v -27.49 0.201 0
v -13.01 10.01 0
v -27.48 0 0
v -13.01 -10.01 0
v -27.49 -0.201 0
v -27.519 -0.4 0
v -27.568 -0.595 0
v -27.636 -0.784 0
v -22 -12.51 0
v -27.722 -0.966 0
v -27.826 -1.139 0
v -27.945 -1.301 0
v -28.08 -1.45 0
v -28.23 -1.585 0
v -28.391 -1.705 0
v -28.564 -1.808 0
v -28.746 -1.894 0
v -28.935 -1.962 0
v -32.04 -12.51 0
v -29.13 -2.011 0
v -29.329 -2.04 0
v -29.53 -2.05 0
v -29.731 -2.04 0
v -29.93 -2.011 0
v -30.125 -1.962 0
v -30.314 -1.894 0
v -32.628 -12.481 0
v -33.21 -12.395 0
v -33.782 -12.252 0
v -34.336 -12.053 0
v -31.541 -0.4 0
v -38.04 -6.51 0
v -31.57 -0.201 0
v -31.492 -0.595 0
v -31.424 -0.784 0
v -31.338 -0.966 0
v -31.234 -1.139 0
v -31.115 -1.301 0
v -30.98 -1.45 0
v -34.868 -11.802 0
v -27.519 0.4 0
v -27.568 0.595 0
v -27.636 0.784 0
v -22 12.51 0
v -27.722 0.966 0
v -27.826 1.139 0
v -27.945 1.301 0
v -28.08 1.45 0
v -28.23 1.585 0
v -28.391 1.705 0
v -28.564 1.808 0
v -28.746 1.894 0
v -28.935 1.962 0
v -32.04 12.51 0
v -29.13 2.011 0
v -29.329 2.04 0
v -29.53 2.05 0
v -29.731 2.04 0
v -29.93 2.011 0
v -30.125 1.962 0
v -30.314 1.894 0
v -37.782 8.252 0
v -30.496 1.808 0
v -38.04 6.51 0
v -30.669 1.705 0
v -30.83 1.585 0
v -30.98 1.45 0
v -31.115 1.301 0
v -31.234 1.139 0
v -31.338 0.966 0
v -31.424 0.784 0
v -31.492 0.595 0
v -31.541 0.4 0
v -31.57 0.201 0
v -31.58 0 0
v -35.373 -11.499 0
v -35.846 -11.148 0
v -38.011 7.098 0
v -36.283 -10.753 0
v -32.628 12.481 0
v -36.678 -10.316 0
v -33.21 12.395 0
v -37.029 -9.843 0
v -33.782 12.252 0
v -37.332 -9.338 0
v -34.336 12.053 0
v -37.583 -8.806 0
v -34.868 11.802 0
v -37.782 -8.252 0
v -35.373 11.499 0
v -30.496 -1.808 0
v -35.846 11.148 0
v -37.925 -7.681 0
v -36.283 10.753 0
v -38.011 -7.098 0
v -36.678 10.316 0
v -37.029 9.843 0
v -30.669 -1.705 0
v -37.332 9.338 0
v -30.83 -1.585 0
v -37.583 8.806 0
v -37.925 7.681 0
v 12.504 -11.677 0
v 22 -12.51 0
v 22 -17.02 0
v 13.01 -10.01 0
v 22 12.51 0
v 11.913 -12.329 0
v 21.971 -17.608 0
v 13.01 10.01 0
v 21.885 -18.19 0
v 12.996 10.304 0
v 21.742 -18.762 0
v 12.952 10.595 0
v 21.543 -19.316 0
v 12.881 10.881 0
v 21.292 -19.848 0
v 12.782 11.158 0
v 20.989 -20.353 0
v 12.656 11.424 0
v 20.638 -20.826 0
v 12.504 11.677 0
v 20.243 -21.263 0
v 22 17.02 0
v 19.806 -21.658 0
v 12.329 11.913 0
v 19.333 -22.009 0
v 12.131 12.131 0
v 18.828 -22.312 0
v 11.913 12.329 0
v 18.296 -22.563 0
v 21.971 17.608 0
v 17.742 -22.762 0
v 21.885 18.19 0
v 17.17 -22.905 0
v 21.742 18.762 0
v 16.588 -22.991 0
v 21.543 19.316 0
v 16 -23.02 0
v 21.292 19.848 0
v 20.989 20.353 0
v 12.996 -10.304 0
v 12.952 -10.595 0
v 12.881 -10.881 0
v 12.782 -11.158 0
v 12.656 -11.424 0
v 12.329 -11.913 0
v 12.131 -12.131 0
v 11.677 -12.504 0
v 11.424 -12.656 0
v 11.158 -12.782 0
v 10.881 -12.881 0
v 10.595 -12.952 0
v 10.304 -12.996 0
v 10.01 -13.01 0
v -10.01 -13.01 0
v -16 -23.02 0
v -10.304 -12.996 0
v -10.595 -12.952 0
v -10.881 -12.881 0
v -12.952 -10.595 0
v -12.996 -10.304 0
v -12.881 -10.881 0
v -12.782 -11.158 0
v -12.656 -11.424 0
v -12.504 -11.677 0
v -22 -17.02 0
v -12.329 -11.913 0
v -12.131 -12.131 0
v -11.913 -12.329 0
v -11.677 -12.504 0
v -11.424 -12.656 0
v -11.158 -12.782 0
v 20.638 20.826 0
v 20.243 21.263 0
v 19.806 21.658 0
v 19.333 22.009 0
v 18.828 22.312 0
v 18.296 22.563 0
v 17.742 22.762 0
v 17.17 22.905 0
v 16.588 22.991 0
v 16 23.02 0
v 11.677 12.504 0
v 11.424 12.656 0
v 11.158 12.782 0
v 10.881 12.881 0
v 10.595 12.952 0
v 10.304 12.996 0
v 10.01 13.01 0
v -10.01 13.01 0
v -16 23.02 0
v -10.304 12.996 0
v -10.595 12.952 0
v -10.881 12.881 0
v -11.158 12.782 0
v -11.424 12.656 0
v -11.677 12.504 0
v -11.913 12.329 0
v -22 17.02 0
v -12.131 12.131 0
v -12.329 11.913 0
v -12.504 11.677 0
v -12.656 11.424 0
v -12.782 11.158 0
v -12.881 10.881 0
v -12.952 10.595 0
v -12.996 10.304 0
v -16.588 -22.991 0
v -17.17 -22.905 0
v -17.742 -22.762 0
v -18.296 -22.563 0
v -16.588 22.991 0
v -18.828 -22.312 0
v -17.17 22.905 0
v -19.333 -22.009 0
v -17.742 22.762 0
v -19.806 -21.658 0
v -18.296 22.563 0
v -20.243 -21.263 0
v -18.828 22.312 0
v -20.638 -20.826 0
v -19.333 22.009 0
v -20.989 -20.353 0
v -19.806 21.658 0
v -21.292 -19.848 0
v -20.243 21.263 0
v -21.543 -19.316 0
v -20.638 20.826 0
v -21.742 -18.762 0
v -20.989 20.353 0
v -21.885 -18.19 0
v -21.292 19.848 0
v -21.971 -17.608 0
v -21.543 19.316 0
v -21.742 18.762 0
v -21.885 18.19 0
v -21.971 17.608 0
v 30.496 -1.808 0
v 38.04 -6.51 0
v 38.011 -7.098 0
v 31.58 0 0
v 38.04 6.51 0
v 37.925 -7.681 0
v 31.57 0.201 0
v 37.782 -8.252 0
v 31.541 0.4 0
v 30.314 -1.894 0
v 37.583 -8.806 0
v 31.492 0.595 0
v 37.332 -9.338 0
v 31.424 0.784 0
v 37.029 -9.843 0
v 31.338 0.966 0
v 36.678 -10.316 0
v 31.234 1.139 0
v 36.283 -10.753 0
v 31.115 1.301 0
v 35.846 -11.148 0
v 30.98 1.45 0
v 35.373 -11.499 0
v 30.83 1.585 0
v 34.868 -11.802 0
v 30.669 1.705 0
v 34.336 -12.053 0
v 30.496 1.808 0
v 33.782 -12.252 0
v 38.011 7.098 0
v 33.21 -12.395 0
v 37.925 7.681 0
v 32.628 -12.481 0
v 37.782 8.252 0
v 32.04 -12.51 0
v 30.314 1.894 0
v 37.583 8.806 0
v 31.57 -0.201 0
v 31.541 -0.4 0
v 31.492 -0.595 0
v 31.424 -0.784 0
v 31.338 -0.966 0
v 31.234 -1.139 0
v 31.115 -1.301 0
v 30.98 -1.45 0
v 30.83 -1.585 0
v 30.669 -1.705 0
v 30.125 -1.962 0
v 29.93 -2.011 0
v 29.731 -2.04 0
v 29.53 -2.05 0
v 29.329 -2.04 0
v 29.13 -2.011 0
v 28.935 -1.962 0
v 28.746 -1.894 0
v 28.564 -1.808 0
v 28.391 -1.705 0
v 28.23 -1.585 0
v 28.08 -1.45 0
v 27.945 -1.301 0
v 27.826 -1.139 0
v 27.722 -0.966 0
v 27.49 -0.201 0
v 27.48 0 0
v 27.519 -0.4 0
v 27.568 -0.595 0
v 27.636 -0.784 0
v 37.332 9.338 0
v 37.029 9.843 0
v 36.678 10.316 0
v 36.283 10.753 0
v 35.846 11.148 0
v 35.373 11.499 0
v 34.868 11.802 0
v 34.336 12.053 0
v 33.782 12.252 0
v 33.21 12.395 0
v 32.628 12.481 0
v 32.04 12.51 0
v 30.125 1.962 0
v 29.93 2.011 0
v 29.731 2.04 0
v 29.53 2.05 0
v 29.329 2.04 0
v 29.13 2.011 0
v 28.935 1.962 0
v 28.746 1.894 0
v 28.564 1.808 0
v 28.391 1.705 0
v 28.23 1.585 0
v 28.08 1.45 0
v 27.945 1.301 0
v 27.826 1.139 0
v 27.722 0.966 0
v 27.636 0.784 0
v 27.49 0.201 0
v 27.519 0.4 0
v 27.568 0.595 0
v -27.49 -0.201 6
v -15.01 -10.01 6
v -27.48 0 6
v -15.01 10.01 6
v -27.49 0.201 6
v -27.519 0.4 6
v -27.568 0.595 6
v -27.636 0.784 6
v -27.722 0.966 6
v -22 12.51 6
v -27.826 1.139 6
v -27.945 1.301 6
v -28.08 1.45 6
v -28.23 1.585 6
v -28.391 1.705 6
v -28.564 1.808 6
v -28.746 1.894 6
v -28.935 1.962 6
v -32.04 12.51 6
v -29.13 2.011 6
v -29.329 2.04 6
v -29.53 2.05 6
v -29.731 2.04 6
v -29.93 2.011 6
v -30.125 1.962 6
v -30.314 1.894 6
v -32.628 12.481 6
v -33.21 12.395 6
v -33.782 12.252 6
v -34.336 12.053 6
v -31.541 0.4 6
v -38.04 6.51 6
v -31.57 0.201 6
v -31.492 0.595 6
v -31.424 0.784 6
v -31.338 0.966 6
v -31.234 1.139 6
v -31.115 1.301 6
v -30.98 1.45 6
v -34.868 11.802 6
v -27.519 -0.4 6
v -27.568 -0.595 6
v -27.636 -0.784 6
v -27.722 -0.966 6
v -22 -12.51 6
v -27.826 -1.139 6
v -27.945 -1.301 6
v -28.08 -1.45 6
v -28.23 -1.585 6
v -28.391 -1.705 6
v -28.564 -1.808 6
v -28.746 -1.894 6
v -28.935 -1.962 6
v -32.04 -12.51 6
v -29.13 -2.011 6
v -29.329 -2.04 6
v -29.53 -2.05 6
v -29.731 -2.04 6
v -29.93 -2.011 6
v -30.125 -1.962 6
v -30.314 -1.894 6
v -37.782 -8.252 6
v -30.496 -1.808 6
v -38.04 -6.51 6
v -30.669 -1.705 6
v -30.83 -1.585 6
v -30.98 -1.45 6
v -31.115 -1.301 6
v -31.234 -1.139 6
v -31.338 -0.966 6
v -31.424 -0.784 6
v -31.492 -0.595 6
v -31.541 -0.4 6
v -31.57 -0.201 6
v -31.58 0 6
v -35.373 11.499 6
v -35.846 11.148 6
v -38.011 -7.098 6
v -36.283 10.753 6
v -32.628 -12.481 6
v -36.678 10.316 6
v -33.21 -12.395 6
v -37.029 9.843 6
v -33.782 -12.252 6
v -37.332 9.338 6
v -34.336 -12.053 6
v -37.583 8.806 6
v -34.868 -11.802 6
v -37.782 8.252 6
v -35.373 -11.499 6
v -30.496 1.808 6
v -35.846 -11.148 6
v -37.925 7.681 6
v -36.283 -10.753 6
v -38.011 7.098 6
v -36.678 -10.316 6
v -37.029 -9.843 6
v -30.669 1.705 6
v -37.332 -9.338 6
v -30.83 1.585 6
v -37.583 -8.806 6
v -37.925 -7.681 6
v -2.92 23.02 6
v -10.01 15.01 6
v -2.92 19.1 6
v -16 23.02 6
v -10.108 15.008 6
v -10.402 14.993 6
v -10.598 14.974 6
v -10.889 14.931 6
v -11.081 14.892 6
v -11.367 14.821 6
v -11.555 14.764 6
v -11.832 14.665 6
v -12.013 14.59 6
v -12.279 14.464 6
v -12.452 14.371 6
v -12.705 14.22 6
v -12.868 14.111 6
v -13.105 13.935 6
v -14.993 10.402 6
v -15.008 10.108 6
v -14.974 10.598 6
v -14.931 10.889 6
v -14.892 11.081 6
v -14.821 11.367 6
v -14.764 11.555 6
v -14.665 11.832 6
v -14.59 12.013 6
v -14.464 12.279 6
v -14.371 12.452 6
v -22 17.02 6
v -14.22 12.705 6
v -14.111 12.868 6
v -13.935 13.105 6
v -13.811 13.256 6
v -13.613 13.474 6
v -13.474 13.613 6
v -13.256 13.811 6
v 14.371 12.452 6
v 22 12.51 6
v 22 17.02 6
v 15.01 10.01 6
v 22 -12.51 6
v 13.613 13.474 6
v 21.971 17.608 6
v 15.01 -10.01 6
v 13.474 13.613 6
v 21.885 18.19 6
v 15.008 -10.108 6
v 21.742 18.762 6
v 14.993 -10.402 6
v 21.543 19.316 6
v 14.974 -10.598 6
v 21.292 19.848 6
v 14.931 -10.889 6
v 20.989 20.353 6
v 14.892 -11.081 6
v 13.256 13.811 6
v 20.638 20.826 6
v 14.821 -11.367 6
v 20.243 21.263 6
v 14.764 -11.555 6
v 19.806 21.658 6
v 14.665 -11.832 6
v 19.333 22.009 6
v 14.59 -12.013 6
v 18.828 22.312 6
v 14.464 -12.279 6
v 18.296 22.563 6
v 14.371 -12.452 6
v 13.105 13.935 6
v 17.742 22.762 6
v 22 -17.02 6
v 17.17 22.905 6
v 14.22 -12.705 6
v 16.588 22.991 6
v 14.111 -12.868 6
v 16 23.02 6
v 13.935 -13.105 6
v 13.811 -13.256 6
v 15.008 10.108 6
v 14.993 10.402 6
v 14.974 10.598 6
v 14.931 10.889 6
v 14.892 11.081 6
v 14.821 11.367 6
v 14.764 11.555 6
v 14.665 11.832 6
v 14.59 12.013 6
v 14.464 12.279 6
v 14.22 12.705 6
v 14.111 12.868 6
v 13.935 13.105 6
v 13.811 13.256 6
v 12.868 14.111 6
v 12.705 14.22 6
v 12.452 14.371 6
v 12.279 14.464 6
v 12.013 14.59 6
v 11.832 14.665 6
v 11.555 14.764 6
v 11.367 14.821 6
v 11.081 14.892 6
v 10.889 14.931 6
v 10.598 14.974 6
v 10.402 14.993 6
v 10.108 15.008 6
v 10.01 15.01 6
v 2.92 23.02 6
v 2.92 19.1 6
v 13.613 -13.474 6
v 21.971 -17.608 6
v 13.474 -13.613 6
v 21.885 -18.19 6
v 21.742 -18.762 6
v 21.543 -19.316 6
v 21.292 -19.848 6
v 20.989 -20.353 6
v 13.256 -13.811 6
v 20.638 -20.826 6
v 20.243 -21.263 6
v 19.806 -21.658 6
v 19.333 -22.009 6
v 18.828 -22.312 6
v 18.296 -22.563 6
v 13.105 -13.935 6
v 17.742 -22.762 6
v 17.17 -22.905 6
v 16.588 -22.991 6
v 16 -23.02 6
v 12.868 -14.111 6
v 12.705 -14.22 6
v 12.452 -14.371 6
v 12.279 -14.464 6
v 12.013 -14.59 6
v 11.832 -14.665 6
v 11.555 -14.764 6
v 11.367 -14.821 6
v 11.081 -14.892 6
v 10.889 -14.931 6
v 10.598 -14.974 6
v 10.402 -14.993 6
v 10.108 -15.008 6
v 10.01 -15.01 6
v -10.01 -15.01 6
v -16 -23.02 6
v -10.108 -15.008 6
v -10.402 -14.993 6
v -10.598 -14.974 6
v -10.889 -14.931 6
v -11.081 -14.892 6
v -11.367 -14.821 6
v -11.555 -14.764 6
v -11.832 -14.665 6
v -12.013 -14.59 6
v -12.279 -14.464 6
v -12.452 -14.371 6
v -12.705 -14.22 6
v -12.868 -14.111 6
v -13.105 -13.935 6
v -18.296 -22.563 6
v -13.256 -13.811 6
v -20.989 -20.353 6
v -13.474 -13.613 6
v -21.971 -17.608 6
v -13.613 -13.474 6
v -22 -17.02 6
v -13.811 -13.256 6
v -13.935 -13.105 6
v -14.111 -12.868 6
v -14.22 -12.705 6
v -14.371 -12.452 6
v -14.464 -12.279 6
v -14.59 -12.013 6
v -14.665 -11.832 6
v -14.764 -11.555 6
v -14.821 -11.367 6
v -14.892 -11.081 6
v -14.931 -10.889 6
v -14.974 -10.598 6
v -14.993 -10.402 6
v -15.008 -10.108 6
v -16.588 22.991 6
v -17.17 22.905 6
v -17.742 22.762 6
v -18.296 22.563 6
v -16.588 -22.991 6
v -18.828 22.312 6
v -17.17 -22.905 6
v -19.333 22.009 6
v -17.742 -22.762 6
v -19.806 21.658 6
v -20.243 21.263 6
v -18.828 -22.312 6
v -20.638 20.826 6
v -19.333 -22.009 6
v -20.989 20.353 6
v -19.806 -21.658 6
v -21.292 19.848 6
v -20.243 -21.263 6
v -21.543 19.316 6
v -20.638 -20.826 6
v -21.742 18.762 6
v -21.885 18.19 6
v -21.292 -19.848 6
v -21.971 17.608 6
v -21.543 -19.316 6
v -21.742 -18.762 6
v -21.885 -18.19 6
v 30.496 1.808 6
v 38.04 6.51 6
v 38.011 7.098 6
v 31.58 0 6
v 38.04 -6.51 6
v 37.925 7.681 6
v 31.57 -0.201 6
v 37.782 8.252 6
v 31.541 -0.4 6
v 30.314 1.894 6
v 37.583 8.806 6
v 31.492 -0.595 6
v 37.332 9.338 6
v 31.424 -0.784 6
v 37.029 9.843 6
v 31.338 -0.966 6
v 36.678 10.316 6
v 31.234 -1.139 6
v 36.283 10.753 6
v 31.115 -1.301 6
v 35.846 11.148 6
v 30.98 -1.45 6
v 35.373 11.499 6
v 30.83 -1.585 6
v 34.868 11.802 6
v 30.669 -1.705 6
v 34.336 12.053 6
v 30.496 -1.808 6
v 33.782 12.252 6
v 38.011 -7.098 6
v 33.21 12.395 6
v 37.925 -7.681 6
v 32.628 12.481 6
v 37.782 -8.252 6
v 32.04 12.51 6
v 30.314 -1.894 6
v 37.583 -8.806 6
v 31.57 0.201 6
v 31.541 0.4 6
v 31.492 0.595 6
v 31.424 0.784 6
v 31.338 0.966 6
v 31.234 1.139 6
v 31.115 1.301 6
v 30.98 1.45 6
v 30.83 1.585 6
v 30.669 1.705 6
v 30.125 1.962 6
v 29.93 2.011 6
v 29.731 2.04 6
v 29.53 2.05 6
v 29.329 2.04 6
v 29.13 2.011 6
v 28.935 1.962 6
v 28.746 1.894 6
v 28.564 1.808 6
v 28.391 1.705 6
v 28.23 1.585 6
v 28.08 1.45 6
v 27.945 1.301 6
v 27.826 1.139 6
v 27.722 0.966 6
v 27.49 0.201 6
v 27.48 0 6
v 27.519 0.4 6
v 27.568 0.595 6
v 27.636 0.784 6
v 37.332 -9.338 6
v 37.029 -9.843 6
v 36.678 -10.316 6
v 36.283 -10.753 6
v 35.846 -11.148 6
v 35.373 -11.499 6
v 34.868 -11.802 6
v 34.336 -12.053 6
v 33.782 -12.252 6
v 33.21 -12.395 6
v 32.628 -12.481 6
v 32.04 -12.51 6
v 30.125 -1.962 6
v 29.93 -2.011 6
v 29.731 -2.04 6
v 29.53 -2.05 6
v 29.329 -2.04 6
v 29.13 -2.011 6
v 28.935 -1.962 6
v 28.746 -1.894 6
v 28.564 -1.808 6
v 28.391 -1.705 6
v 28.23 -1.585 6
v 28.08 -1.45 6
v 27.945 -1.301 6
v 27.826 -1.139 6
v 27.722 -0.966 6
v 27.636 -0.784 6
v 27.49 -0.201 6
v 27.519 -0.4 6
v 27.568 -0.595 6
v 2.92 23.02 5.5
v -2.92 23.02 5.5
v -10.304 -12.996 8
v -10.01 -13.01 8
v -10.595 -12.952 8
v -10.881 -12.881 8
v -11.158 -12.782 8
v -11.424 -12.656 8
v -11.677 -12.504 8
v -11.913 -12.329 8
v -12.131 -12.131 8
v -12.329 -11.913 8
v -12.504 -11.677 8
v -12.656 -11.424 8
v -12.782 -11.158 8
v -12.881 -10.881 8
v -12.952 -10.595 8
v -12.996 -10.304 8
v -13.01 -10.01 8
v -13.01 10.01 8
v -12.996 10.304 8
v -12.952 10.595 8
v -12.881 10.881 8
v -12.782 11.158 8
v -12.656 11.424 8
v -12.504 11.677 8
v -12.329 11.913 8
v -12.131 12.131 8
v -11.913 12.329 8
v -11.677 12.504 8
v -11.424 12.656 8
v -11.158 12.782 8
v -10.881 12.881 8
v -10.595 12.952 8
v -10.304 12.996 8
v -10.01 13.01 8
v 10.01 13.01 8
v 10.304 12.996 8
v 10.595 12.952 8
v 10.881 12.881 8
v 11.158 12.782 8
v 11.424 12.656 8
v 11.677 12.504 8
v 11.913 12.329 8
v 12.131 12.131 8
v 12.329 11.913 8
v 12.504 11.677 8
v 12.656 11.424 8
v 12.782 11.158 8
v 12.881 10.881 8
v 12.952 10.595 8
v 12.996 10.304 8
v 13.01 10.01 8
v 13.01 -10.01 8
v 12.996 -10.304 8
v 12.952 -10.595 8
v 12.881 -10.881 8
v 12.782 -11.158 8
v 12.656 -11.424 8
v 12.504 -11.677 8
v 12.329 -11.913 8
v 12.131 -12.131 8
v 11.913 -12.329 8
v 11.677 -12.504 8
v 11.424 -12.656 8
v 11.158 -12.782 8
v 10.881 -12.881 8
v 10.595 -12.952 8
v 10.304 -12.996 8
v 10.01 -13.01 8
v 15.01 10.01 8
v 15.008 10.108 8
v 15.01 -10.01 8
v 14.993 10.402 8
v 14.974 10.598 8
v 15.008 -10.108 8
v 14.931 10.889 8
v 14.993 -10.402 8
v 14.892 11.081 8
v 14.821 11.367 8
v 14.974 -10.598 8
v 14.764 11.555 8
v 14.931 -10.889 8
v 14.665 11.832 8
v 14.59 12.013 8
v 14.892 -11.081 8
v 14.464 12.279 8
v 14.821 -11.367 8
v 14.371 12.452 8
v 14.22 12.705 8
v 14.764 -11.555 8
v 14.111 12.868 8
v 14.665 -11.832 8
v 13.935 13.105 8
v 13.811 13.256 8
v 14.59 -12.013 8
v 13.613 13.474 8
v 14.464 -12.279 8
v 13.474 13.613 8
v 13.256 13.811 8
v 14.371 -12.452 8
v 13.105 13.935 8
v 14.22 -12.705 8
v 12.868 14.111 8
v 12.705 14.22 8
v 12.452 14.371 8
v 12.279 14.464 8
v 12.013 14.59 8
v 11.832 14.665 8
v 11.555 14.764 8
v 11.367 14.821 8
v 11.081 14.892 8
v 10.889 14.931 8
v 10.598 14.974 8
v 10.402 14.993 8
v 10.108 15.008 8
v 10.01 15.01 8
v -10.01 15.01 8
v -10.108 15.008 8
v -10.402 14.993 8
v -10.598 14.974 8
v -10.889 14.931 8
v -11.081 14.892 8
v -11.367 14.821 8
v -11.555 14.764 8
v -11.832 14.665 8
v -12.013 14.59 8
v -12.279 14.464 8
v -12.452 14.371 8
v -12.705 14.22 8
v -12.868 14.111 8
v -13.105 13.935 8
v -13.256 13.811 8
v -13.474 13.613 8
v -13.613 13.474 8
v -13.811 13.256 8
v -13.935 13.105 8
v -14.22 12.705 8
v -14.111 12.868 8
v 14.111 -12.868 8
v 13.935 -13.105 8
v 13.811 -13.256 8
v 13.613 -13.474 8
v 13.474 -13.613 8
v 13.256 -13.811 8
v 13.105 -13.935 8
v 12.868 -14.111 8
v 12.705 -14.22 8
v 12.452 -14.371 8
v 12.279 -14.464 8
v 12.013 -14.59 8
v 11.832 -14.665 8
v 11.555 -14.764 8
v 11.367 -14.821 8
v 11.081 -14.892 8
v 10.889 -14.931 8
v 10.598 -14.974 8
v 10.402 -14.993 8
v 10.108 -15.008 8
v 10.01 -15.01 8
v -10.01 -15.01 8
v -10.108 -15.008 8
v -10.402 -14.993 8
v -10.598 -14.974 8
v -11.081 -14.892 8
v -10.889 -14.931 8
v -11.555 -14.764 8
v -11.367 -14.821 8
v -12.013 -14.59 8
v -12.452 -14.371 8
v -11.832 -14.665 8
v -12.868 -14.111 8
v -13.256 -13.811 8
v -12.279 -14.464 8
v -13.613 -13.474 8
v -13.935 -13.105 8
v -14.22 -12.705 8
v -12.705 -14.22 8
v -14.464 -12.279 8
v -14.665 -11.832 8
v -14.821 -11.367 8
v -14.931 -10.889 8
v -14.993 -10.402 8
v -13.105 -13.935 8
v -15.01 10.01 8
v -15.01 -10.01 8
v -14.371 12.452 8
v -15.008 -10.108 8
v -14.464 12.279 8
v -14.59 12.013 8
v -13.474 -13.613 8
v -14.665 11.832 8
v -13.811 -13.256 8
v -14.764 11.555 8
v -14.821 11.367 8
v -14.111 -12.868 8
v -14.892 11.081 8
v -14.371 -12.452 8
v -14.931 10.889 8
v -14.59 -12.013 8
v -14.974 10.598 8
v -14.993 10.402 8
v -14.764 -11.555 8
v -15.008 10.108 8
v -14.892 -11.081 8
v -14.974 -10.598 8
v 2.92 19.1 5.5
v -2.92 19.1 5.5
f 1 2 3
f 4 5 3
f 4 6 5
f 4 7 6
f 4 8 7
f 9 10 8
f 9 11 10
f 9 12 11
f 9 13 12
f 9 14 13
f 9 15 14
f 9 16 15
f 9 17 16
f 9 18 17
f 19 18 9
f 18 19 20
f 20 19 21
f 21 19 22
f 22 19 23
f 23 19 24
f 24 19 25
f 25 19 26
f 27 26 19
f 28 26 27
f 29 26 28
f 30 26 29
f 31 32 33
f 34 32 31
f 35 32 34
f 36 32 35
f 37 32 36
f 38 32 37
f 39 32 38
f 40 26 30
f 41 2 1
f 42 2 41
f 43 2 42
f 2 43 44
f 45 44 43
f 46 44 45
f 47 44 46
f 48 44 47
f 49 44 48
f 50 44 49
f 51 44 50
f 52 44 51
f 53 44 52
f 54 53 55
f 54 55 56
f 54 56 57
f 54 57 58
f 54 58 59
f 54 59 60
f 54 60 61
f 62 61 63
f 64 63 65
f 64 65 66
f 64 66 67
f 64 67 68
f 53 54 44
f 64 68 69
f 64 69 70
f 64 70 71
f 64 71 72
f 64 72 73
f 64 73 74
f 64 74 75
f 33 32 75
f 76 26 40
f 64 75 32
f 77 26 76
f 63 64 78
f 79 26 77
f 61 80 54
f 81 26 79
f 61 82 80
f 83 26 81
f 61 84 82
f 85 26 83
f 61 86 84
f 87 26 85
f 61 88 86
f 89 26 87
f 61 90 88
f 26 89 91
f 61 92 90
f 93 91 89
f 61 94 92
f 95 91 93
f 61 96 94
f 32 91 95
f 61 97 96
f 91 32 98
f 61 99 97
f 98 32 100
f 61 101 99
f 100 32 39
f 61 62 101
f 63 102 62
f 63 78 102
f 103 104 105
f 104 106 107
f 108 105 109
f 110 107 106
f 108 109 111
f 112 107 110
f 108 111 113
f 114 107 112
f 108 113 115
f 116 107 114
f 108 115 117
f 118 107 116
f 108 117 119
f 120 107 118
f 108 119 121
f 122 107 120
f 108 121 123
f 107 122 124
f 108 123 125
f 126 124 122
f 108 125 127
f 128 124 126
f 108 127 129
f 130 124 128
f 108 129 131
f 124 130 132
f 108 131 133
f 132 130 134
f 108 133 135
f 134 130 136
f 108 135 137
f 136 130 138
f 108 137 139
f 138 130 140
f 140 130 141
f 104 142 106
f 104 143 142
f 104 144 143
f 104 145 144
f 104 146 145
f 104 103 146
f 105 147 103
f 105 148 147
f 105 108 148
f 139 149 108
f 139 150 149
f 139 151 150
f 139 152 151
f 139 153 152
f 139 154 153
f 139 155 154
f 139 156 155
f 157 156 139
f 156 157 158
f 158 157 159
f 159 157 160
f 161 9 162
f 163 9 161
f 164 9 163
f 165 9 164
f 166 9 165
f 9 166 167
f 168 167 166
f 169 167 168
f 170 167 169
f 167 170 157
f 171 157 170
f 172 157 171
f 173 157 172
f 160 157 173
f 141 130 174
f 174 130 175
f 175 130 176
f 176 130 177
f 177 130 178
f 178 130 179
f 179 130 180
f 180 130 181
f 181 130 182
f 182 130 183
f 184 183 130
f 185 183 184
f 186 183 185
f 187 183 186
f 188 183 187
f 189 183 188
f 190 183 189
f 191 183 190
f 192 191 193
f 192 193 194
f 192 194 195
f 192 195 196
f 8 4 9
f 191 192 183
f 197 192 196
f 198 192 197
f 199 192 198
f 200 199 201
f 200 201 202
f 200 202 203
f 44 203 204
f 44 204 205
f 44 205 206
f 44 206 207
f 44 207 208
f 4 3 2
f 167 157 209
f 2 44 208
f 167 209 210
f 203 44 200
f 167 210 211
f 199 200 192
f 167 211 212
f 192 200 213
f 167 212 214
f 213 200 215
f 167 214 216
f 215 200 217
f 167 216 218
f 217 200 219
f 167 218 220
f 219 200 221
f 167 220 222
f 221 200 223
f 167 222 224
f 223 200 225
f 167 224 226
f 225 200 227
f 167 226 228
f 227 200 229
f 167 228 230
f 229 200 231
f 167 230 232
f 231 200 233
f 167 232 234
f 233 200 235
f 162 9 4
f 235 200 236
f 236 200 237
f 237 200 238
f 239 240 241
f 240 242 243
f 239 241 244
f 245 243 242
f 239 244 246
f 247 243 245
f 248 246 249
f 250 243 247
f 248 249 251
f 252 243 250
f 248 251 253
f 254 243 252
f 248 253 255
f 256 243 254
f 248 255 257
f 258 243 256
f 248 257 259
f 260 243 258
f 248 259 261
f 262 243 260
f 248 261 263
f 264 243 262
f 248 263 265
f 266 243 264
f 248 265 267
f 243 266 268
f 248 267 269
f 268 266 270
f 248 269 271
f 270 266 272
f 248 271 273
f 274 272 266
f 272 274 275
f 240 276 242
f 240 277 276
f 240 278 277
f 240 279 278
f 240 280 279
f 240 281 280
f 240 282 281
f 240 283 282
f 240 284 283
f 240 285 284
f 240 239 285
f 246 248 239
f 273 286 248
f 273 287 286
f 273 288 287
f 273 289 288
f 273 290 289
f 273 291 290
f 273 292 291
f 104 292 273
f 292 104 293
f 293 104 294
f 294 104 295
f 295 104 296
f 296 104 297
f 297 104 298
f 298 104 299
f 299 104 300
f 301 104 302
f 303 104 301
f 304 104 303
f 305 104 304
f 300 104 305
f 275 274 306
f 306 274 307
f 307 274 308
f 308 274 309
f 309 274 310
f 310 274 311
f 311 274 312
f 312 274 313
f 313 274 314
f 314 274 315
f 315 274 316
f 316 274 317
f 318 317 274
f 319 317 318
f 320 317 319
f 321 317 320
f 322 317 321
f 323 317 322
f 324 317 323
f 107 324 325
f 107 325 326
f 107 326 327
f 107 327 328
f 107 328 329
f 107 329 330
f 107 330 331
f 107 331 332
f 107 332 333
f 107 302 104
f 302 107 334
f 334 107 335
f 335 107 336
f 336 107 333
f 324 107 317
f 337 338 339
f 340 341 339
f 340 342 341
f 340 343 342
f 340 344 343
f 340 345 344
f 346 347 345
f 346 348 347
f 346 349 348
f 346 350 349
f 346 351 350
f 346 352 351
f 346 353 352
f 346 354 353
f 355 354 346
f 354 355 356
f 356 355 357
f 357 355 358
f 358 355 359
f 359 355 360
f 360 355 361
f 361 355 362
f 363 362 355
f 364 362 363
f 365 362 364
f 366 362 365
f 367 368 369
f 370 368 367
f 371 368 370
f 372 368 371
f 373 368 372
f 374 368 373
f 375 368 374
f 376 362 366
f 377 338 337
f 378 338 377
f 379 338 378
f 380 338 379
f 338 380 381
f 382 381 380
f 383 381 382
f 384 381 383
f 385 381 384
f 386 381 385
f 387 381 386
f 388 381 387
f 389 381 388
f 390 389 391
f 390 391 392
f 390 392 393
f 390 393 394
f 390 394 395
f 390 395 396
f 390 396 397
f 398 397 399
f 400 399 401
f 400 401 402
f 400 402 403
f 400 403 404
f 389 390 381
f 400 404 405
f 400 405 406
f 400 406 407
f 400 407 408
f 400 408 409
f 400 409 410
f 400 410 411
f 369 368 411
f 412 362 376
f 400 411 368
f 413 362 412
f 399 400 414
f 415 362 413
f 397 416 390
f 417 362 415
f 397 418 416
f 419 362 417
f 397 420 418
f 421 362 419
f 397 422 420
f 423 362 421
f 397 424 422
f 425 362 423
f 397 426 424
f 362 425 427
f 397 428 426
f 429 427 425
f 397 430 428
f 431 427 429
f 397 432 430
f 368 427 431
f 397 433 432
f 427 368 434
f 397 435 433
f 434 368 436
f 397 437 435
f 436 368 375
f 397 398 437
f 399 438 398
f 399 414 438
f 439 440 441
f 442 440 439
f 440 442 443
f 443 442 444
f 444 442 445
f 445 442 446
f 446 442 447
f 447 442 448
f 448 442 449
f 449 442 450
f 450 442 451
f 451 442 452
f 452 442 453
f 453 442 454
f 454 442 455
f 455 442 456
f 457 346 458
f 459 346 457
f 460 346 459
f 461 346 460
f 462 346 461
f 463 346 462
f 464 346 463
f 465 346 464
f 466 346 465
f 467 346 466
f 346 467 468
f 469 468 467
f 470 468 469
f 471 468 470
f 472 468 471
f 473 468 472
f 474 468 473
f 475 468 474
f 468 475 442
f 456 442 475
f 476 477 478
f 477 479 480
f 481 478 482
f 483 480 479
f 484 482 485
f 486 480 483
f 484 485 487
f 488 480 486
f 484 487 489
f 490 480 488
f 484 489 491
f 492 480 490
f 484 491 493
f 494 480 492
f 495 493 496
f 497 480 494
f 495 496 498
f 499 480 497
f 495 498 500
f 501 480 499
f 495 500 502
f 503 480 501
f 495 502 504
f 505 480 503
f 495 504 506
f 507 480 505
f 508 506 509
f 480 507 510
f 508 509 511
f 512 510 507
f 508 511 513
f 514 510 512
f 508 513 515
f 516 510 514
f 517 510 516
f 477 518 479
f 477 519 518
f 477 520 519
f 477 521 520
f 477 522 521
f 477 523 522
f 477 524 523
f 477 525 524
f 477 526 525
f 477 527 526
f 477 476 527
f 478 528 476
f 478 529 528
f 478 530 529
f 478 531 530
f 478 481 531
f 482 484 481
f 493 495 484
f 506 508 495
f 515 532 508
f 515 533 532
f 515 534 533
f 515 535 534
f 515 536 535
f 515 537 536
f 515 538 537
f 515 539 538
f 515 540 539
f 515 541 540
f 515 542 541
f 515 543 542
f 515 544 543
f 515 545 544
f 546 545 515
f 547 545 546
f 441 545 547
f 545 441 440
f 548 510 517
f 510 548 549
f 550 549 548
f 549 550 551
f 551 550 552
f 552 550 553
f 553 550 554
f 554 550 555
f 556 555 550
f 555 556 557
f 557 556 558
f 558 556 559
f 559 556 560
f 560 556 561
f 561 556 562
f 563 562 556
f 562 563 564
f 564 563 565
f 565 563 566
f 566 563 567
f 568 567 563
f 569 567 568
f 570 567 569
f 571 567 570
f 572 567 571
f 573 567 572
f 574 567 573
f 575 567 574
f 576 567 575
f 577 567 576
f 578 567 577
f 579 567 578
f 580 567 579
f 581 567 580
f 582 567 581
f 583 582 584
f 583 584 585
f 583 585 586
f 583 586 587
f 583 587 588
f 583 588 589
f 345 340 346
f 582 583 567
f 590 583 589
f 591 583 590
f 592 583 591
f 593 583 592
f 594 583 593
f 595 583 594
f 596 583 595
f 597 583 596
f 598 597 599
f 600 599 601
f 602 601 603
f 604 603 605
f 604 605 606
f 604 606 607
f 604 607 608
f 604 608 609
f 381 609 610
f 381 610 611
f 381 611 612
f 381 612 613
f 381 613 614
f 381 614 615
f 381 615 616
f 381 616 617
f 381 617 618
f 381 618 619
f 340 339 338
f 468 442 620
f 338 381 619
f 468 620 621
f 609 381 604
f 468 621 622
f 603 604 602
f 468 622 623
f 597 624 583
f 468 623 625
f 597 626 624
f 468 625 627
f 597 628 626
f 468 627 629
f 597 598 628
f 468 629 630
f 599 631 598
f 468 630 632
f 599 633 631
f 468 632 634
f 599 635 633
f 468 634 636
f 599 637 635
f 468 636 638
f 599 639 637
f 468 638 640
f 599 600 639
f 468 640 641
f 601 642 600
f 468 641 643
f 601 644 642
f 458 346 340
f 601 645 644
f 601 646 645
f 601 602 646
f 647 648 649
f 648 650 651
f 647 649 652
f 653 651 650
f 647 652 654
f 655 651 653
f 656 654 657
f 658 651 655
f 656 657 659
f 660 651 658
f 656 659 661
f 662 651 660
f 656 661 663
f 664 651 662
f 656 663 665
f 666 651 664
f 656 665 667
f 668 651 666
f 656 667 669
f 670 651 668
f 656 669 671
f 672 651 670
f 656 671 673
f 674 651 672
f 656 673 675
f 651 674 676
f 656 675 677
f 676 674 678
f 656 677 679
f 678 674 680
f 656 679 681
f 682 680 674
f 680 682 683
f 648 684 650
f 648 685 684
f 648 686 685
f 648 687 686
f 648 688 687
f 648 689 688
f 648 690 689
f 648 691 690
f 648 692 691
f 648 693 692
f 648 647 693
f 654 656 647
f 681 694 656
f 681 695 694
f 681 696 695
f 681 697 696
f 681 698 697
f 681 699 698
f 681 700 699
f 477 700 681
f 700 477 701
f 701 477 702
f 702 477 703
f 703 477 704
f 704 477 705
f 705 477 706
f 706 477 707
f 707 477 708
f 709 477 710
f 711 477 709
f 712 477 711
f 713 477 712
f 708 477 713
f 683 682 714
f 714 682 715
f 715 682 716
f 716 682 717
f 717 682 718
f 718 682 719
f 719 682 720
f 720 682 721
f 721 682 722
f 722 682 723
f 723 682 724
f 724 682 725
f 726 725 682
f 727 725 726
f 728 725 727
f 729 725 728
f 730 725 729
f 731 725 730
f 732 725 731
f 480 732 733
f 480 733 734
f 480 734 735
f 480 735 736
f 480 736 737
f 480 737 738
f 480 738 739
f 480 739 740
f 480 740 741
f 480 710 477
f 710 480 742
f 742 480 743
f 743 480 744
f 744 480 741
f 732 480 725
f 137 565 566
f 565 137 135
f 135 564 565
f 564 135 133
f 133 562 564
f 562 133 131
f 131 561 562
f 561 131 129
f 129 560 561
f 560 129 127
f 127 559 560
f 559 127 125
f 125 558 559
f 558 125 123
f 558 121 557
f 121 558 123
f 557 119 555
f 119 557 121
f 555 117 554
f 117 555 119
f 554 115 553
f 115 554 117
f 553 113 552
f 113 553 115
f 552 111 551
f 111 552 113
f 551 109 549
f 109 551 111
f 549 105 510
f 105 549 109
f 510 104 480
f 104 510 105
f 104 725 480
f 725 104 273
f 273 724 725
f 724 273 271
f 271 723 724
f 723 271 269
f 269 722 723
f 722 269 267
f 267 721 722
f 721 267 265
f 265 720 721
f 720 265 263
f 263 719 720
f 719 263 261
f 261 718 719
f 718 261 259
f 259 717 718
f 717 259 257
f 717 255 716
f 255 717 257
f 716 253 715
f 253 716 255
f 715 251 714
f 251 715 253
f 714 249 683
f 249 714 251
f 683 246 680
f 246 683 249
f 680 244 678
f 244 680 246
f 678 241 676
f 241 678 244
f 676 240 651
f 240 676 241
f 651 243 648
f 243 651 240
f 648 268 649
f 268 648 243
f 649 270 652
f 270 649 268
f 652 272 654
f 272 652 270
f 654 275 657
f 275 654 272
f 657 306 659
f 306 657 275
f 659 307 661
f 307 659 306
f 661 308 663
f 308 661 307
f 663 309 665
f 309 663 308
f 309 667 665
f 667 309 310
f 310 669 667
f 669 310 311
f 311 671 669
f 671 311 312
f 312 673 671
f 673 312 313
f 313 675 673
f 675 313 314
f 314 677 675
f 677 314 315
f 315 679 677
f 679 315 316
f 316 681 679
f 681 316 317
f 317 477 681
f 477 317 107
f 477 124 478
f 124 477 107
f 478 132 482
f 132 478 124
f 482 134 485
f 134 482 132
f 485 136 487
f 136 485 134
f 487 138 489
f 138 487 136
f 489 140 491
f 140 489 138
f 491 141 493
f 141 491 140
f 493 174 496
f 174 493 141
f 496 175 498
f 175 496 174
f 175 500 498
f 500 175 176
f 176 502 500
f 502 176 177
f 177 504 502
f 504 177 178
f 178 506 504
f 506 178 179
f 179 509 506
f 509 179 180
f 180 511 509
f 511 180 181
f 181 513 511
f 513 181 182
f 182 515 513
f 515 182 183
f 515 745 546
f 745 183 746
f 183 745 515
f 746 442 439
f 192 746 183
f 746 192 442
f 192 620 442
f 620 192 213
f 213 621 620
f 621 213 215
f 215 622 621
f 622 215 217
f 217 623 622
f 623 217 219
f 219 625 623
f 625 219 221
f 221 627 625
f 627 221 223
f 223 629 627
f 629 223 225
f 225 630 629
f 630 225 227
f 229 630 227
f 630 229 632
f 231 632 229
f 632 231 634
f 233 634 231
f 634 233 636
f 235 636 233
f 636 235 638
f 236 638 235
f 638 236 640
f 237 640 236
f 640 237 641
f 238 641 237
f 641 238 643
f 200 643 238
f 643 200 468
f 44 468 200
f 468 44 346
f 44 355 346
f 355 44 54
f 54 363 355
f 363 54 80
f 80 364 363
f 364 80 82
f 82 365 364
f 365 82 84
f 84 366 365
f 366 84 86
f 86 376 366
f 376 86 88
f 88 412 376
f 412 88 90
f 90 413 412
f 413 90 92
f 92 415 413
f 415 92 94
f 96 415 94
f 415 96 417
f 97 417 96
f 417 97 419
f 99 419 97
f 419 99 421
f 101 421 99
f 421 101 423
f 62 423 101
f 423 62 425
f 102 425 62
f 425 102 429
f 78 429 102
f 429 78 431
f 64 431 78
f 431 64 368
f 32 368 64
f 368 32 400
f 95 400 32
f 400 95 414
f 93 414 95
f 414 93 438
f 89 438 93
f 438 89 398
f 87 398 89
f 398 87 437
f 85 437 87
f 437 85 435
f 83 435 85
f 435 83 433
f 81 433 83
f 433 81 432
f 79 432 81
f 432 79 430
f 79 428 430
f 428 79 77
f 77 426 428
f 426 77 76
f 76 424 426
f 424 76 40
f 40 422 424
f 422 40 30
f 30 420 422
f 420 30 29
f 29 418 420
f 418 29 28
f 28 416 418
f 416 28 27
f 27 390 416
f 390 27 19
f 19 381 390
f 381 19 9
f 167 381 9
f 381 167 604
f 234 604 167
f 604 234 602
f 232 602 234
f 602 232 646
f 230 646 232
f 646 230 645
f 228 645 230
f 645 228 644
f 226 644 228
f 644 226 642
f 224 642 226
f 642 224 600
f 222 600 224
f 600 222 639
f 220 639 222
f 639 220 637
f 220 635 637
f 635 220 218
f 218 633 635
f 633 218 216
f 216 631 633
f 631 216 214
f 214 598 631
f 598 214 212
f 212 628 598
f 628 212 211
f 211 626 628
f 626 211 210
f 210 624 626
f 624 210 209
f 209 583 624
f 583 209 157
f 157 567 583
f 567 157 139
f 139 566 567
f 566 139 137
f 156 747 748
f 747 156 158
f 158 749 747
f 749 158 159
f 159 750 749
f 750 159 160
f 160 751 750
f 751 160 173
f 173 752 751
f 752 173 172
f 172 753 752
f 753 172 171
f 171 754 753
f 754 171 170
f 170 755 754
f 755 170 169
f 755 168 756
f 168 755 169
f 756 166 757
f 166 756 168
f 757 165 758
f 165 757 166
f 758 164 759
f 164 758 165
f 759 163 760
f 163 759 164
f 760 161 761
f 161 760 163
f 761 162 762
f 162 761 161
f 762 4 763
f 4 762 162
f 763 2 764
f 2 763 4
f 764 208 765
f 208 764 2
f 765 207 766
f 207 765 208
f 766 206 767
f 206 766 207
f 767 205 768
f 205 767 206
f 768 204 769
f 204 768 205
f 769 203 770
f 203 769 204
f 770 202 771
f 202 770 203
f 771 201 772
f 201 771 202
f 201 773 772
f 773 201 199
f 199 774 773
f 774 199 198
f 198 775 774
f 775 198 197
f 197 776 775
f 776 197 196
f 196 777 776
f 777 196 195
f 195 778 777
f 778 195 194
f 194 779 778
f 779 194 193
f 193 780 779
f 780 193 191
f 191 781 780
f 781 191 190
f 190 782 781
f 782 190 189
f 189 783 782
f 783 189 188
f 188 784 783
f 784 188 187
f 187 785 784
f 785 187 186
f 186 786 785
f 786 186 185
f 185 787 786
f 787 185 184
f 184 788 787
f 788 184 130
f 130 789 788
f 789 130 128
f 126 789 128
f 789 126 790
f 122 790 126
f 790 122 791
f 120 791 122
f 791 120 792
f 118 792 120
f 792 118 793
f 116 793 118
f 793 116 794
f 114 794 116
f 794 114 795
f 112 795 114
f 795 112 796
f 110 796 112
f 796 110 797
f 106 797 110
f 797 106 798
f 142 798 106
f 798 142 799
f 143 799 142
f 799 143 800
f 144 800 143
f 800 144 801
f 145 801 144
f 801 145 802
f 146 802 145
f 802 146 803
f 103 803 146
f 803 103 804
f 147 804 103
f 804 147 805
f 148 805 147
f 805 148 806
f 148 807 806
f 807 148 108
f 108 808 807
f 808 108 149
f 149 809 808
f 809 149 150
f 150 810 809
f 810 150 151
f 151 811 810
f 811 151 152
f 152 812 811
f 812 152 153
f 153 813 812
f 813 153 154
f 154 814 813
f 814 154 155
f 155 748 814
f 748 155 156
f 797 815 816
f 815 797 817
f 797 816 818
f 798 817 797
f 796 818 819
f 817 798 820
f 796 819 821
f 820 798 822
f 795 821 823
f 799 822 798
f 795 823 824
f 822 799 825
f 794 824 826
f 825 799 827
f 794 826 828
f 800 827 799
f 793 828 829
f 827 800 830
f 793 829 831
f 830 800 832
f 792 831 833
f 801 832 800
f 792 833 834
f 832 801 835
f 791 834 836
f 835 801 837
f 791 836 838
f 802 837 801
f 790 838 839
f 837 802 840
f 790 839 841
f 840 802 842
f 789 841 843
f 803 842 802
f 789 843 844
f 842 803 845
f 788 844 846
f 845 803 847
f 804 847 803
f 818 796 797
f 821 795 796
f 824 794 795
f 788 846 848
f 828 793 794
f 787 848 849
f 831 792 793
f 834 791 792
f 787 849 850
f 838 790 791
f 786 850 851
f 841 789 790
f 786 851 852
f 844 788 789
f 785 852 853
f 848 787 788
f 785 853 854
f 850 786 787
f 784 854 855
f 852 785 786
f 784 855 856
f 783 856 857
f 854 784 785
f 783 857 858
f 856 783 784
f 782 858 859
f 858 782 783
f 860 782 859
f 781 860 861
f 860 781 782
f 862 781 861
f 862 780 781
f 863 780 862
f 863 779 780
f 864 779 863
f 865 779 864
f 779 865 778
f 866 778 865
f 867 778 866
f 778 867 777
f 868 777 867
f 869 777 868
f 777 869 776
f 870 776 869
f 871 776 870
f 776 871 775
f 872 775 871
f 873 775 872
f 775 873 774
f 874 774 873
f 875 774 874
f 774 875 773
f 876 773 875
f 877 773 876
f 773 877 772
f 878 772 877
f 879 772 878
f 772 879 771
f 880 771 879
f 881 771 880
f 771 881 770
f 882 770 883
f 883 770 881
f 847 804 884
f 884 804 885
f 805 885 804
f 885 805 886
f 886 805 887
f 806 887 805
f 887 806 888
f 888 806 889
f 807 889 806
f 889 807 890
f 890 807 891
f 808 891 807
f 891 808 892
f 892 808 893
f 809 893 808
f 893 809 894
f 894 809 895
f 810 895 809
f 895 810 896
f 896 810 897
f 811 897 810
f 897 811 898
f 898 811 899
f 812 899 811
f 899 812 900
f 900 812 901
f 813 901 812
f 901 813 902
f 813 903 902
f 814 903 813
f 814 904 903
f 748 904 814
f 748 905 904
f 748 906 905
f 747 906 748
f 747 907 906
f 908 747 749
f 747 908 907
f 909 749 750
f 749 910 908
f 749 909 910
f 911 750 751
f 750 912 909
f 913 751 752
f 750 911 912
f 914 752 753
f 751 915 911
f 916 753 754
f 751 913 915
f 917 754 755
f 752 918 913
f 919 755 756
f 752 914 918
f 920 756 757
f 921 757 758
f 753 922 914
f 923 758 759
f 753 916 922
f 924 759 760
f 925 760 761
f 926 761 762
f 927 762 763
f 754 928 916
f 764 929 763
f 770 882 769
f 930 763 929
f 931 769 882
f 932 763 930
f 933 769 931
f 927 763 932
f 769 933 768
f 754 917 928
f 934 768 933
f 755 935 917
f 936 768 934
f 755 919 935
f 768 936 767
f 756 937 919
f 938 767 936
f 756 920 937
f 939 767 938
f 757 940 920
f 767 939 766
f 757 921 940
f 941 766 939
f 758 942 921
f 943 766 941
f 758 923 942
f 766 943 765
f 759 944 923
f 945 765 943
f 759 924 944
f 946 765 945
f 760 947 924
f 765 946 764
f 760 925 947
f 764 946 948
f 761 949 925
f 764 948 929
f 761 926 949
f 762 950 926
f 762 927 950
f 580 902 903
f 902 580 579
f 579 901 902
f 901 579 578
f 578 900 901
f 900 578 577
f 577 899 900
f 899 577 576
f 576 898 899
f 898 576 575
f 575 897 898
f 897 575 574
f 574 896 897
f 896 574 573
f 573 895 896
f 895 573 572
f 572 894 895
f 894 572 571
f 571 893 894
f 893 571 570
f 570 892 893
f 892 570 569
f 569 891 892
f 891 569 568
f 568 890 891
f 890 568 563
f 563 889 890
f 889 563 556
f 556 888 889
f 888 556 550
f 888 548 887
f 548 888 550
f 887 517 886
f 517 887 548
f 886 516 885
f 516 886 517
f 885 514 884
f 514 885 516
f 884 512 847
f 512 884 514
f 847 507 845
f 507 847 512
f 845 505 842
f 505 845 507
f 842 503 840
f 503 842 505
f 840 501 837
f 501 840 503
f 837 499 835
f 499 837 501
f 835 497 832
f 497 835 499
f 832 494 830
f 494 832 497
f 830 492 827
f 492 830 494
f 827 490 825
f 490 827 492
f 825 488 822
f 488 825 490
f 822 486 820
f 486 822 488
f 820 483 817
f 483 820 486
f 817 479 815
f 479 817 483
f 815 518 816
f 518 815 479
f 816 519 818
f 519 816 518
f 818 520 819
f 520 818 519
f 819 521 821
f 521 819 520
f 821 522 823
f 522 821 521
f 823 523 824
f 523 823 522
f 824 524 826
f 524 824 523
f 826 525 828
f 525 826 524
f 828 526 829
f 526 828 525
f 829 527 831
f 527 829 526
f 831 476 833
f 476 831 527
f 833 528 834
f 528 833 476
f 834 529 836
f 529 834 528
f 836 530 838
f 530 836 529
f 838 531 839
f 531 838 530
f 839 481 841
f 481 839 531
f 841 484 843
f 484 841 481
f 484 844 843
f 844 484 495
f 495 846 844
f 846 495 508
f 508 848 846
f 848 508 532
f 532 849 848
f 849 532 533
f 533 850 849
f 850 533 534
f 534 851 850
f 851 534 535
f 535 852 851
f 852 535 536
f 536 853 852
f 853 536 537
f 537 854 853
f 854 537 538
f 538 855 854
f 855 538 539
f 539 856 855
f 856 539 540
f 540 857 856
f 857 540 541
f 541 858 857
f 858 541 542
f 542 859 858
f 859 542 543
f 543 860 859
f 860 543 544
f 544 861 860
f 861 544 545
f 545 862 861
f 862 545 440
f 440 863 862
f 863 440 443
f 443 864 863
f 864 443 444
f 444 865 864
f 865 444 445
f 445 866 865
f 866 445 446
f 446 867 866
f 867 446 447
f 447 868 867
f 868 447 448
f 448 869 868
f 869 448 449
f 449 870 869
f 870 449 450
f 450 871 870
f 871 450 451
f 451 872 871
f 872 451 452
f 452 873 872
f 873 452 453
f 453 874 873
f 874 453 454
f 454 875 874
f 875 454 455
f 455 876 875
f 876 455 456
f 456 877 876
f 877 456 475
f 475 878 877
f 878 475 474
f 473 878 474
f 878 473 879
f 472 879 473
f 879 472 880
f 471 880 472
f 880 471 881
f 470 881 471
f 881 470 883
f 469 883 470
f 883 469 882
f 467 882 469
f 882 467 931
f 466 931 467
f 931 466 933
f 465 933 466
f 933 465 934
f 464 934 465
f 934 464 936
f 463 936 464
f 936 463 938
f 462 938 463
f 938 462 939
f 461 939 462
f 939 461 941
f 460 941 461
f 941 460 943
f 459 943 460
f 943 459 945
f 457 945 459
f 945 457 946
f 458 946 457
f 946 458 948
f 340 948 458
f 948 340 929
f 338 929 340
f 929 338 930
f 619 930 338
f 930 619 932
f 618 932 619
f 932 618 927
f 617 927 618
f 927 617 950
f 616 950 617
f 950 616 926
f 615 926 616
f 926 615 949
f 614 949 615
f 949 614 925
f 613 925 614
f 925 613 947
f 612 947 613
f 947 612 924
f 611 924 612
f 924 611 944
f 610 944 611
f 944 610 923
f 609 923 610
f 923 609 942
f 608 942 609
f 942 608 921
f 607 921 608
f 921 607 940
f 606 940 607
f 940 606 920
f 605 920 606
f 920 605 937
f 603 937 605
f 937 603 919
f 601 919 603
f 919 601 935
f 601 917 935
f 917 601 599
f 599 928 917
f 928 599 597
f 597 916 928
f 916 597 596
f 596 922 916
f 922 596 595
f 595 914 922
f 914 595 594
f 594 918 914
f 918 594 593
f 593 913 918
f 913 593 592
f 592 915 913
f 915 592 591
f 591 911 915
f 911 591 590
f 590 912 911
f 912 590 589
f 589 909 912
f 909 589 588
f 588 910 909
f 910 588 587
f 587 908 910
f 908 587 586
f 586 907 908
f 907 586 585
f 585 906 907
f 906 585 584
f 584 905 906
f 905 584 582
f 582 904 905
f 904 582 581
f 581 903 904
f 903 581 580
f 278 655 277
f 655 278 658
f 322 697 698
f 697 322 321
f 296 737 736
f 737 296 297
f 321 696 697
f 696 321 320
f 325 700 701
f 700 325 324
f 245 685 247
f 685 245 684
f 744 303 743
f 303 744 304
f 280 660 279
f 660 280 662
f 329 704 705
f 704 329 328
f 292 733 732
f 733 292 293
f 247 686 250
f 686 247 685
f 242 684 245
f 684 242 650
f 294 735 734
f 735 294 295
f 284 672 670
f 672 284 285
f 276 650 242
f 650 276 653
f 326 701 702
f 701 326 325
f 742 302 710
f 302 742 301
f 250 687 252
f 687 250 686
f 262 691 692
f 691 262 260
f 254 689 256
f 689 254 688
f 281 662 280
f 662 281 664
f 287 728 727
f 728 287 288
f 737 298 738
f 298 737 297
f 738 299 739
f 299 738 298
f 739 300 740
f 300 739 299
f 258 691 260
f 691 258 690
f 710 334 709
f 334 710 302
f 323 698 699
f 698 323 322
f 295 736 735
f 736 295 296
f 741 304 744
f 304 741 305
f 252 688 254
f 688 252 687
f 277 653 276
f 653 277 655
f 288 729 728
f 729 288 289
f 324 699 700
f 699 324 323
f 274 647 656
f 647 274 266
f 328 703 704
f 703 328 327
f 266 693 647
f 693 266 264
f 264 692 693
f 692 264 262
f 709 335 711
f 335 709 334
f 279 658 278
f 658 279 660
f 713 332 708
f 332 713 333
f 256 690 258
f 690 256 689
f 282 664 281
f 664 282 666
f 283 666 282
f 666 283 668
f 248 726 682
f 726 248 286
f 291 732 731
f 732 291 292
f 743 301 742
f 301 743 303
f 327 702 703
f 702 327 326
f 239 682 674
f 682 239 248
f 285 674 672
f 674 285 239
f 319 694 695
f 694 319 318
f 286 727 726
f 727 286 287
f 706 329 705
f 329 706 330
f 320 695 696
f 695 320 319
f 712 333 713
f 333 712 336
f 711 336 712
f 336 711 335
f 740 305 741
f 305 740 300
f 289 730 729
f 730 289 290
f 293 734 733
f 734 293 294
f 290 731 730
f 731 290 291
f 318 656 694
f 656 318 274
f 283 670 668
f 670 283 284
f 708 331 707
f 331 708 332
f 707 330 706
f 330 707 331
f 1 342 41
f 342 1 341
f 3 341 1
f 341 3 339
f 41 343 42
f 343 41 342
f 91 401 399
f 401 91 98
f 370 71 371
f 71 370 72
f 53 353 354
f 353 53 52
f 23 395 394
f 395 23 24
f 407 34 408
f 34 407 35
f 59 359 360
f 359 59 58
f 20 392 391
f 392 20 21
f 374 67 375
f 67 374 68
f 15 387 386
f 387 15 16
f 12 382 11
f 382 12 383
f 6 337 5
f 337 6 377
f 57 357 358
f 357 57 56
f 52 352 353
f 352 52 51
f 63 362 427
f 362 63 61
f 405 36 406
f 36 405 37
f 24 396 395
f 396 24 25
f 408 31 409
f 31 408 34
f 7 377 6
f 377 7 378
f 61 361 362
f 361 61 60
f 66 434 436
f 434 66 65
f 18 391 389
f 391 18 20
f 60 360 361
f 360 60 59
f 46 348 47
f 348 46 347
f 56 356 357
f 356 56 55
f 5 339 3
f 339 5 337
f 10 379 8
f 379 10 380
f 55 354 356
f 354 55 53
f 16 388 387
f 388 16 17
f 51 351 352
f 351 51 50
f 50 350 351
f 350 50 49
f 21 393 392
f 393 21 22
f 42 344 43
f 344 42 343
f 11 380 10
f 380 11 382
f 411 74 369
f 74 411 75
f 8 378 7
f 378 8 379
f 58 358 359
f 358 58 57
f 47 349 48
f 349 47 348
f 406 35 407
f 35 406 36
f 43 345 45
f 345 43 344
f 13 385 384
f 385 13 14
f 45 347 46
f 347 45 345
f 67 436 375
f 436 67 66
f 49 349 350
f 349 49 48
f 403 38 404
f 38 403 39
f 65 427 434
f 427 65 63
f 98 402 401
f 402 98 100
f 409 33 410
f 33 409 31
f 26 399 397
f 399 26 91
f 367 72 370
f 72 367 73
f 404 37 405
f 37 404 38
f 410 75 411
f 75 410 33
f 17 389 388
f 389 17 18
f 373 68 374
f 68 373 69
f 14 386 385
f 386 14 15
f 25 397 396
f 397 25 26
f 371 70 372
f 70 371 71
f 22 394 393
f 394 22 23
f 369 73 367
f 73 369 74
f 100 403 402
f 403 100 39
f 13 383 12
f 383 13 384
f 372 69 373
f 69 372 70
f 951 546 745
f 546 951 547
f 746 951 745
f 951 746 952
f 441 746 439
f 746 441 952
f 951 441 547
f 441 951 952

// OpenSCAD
// Load cell holder - derived from a third-party Printables design
// (https://www.printables.com/model/157473-load-cell-holder), reverse
// measured from the downloaded STL rather than guessed - see the
// measurement commands in project history / commit message for how each
// number below was extracted (2D cross-section slices + point-cloud
// analysis of the actual mesh, not eyeballed).
//
// This is a FAITHFUL FUNCTIONAL recreation (same envelope, hole
// positions/sizes, pocket opening, general thickness) expressed as
// editable OpenSCAD instead of an opaque STL, matching how the rest of
// this project's parts are built (case.scad, generate_pcb.py). It is
// NOT a byte-identical mesh clone - fine fillet/lip details are
// approximated. Validate print fit against the original STL
// (keg-platform/load_cell_holder_reference.stl) before relying on this
// for a real build.
//
// Snap-fit bracket: two outer ears bolt down to a base plate: the load
// cell itself snaps into the central pocket, gripped by the raised lip
// around it and able to flex slightly thanks to the seam slit at the
// pocket's top edge.

// ---- measured dimensions -------------------------------------------
ear_thickness = 6.0;       // ear tab thickness (measured: ~5.9-6.0mm)
lip_height = 2.0;          // raised pocket lip, on top of ear_thickness
                            // (total part height measured as 8.01mm)

collar_half_w = 22.0;      // central collar half-width (x)
collar_half_h = 23.02;     // central collar half-height (y) - measured
collar_corner_r = 6.0;     // approximate corner rounding

ear_half_h = 12.51;        // ear tab half-height (y) - measured
ear_outer_x = 38.04;       // ear tip x-extent (half of 76.08mm total)
ear_corner_r = 6.0;        // approximate ear end rounding

bolt_hole_x = 29.53;       // bolt hole x position - measured
bolt_hole_r = 2.05;        // bolt hole radius - measured (~M4 clearance)

pocket_half = 13.01;       // pocket opening half-width/height (26.03mm
                            // square) - measured
pocket_corner_r = 3.0;     // approximate pocket corner rounding

seam_half_w = 2.92;        // split-seam slit half-width - measured
seam_y0 = 19.1;            // seam starts at this y (measured) ...
seam_y1 = collar_half_h + 1;  // ... through the outer edge

$fn = 64;

module rounded_rect(w, h, r) {
    offset(r = r)
        offset(delta = -r)
            square([w, h], center = true);
}

module outline_2d() {
    // Ear tabs overlap deep into the collar (starting well inside its
    // half-width, not right at the edge) so their rounded corners land
    // entirely within the collar's solid area instead of both shapes'
    // roundings landing at the same seam and leaving a gap there - first
    // version of this had exactly that bug, caught by rendering and
    // comparing against the original rather than trusting it blind.
    ear_inner_x = collar_half_w * 0.4;
    union() {
        rounded_rect(collar_half_w * 2, collar_half_h * 2, collar_corner_r);
        translate([(ear_inner_x + ear_outer_x) / 2, 0])
            rounded_rect(ear_outer_x - ear_inner_x, ear_half_h * 2, ear_corner_r);
        translate([-(ear_inner_x + ear_outer_x) / 2, 0])
            rounded_rect(ear_outer_x - ear_inner_x, ear_half_h * 2, ear_corner_r);
    }
}

module pocket_2d() {
    rounded_rect(pocket_half * 2, pocket_half * 2, pocket_corner_r);
}

module holder() {
    difference() {
        union() {
            // base body (ears + collar), to ear_thickness
            linear_extrude(height = ear_thickness)
                difference() {
                    outline_2d();
                    pocket_2d();
                }
            // raised lip around the pocket, on top of the base body
            translate([0, 0, ear_thickness])
                linear_extrude(height = lip_height)
                    difference() {
                        offset(r = 2) pocket_2d();  // lip wall ~2mm thick
                        pocket_2d();
                    }
        }
        // bolt holes, through everything
        translate([bolt_hole_x, 0, -1])
            cylinder(r = bolt_hole_r, h = ear_thickness + 2);
        translate([-bolt_hole_x, 0, -1])
            cylinder(r = bolt_hole_r, h = ear_thickness + 2);
        // split-seam flex slit, through the lip at the pocket's top edge
        translate([-seam_half_w, seam_y0, ear_thickness - 0.5])
            cube([seam_half_w * 2, seam_y1 - seam_y0, lip_height + 1]);
    }
}

holder();
